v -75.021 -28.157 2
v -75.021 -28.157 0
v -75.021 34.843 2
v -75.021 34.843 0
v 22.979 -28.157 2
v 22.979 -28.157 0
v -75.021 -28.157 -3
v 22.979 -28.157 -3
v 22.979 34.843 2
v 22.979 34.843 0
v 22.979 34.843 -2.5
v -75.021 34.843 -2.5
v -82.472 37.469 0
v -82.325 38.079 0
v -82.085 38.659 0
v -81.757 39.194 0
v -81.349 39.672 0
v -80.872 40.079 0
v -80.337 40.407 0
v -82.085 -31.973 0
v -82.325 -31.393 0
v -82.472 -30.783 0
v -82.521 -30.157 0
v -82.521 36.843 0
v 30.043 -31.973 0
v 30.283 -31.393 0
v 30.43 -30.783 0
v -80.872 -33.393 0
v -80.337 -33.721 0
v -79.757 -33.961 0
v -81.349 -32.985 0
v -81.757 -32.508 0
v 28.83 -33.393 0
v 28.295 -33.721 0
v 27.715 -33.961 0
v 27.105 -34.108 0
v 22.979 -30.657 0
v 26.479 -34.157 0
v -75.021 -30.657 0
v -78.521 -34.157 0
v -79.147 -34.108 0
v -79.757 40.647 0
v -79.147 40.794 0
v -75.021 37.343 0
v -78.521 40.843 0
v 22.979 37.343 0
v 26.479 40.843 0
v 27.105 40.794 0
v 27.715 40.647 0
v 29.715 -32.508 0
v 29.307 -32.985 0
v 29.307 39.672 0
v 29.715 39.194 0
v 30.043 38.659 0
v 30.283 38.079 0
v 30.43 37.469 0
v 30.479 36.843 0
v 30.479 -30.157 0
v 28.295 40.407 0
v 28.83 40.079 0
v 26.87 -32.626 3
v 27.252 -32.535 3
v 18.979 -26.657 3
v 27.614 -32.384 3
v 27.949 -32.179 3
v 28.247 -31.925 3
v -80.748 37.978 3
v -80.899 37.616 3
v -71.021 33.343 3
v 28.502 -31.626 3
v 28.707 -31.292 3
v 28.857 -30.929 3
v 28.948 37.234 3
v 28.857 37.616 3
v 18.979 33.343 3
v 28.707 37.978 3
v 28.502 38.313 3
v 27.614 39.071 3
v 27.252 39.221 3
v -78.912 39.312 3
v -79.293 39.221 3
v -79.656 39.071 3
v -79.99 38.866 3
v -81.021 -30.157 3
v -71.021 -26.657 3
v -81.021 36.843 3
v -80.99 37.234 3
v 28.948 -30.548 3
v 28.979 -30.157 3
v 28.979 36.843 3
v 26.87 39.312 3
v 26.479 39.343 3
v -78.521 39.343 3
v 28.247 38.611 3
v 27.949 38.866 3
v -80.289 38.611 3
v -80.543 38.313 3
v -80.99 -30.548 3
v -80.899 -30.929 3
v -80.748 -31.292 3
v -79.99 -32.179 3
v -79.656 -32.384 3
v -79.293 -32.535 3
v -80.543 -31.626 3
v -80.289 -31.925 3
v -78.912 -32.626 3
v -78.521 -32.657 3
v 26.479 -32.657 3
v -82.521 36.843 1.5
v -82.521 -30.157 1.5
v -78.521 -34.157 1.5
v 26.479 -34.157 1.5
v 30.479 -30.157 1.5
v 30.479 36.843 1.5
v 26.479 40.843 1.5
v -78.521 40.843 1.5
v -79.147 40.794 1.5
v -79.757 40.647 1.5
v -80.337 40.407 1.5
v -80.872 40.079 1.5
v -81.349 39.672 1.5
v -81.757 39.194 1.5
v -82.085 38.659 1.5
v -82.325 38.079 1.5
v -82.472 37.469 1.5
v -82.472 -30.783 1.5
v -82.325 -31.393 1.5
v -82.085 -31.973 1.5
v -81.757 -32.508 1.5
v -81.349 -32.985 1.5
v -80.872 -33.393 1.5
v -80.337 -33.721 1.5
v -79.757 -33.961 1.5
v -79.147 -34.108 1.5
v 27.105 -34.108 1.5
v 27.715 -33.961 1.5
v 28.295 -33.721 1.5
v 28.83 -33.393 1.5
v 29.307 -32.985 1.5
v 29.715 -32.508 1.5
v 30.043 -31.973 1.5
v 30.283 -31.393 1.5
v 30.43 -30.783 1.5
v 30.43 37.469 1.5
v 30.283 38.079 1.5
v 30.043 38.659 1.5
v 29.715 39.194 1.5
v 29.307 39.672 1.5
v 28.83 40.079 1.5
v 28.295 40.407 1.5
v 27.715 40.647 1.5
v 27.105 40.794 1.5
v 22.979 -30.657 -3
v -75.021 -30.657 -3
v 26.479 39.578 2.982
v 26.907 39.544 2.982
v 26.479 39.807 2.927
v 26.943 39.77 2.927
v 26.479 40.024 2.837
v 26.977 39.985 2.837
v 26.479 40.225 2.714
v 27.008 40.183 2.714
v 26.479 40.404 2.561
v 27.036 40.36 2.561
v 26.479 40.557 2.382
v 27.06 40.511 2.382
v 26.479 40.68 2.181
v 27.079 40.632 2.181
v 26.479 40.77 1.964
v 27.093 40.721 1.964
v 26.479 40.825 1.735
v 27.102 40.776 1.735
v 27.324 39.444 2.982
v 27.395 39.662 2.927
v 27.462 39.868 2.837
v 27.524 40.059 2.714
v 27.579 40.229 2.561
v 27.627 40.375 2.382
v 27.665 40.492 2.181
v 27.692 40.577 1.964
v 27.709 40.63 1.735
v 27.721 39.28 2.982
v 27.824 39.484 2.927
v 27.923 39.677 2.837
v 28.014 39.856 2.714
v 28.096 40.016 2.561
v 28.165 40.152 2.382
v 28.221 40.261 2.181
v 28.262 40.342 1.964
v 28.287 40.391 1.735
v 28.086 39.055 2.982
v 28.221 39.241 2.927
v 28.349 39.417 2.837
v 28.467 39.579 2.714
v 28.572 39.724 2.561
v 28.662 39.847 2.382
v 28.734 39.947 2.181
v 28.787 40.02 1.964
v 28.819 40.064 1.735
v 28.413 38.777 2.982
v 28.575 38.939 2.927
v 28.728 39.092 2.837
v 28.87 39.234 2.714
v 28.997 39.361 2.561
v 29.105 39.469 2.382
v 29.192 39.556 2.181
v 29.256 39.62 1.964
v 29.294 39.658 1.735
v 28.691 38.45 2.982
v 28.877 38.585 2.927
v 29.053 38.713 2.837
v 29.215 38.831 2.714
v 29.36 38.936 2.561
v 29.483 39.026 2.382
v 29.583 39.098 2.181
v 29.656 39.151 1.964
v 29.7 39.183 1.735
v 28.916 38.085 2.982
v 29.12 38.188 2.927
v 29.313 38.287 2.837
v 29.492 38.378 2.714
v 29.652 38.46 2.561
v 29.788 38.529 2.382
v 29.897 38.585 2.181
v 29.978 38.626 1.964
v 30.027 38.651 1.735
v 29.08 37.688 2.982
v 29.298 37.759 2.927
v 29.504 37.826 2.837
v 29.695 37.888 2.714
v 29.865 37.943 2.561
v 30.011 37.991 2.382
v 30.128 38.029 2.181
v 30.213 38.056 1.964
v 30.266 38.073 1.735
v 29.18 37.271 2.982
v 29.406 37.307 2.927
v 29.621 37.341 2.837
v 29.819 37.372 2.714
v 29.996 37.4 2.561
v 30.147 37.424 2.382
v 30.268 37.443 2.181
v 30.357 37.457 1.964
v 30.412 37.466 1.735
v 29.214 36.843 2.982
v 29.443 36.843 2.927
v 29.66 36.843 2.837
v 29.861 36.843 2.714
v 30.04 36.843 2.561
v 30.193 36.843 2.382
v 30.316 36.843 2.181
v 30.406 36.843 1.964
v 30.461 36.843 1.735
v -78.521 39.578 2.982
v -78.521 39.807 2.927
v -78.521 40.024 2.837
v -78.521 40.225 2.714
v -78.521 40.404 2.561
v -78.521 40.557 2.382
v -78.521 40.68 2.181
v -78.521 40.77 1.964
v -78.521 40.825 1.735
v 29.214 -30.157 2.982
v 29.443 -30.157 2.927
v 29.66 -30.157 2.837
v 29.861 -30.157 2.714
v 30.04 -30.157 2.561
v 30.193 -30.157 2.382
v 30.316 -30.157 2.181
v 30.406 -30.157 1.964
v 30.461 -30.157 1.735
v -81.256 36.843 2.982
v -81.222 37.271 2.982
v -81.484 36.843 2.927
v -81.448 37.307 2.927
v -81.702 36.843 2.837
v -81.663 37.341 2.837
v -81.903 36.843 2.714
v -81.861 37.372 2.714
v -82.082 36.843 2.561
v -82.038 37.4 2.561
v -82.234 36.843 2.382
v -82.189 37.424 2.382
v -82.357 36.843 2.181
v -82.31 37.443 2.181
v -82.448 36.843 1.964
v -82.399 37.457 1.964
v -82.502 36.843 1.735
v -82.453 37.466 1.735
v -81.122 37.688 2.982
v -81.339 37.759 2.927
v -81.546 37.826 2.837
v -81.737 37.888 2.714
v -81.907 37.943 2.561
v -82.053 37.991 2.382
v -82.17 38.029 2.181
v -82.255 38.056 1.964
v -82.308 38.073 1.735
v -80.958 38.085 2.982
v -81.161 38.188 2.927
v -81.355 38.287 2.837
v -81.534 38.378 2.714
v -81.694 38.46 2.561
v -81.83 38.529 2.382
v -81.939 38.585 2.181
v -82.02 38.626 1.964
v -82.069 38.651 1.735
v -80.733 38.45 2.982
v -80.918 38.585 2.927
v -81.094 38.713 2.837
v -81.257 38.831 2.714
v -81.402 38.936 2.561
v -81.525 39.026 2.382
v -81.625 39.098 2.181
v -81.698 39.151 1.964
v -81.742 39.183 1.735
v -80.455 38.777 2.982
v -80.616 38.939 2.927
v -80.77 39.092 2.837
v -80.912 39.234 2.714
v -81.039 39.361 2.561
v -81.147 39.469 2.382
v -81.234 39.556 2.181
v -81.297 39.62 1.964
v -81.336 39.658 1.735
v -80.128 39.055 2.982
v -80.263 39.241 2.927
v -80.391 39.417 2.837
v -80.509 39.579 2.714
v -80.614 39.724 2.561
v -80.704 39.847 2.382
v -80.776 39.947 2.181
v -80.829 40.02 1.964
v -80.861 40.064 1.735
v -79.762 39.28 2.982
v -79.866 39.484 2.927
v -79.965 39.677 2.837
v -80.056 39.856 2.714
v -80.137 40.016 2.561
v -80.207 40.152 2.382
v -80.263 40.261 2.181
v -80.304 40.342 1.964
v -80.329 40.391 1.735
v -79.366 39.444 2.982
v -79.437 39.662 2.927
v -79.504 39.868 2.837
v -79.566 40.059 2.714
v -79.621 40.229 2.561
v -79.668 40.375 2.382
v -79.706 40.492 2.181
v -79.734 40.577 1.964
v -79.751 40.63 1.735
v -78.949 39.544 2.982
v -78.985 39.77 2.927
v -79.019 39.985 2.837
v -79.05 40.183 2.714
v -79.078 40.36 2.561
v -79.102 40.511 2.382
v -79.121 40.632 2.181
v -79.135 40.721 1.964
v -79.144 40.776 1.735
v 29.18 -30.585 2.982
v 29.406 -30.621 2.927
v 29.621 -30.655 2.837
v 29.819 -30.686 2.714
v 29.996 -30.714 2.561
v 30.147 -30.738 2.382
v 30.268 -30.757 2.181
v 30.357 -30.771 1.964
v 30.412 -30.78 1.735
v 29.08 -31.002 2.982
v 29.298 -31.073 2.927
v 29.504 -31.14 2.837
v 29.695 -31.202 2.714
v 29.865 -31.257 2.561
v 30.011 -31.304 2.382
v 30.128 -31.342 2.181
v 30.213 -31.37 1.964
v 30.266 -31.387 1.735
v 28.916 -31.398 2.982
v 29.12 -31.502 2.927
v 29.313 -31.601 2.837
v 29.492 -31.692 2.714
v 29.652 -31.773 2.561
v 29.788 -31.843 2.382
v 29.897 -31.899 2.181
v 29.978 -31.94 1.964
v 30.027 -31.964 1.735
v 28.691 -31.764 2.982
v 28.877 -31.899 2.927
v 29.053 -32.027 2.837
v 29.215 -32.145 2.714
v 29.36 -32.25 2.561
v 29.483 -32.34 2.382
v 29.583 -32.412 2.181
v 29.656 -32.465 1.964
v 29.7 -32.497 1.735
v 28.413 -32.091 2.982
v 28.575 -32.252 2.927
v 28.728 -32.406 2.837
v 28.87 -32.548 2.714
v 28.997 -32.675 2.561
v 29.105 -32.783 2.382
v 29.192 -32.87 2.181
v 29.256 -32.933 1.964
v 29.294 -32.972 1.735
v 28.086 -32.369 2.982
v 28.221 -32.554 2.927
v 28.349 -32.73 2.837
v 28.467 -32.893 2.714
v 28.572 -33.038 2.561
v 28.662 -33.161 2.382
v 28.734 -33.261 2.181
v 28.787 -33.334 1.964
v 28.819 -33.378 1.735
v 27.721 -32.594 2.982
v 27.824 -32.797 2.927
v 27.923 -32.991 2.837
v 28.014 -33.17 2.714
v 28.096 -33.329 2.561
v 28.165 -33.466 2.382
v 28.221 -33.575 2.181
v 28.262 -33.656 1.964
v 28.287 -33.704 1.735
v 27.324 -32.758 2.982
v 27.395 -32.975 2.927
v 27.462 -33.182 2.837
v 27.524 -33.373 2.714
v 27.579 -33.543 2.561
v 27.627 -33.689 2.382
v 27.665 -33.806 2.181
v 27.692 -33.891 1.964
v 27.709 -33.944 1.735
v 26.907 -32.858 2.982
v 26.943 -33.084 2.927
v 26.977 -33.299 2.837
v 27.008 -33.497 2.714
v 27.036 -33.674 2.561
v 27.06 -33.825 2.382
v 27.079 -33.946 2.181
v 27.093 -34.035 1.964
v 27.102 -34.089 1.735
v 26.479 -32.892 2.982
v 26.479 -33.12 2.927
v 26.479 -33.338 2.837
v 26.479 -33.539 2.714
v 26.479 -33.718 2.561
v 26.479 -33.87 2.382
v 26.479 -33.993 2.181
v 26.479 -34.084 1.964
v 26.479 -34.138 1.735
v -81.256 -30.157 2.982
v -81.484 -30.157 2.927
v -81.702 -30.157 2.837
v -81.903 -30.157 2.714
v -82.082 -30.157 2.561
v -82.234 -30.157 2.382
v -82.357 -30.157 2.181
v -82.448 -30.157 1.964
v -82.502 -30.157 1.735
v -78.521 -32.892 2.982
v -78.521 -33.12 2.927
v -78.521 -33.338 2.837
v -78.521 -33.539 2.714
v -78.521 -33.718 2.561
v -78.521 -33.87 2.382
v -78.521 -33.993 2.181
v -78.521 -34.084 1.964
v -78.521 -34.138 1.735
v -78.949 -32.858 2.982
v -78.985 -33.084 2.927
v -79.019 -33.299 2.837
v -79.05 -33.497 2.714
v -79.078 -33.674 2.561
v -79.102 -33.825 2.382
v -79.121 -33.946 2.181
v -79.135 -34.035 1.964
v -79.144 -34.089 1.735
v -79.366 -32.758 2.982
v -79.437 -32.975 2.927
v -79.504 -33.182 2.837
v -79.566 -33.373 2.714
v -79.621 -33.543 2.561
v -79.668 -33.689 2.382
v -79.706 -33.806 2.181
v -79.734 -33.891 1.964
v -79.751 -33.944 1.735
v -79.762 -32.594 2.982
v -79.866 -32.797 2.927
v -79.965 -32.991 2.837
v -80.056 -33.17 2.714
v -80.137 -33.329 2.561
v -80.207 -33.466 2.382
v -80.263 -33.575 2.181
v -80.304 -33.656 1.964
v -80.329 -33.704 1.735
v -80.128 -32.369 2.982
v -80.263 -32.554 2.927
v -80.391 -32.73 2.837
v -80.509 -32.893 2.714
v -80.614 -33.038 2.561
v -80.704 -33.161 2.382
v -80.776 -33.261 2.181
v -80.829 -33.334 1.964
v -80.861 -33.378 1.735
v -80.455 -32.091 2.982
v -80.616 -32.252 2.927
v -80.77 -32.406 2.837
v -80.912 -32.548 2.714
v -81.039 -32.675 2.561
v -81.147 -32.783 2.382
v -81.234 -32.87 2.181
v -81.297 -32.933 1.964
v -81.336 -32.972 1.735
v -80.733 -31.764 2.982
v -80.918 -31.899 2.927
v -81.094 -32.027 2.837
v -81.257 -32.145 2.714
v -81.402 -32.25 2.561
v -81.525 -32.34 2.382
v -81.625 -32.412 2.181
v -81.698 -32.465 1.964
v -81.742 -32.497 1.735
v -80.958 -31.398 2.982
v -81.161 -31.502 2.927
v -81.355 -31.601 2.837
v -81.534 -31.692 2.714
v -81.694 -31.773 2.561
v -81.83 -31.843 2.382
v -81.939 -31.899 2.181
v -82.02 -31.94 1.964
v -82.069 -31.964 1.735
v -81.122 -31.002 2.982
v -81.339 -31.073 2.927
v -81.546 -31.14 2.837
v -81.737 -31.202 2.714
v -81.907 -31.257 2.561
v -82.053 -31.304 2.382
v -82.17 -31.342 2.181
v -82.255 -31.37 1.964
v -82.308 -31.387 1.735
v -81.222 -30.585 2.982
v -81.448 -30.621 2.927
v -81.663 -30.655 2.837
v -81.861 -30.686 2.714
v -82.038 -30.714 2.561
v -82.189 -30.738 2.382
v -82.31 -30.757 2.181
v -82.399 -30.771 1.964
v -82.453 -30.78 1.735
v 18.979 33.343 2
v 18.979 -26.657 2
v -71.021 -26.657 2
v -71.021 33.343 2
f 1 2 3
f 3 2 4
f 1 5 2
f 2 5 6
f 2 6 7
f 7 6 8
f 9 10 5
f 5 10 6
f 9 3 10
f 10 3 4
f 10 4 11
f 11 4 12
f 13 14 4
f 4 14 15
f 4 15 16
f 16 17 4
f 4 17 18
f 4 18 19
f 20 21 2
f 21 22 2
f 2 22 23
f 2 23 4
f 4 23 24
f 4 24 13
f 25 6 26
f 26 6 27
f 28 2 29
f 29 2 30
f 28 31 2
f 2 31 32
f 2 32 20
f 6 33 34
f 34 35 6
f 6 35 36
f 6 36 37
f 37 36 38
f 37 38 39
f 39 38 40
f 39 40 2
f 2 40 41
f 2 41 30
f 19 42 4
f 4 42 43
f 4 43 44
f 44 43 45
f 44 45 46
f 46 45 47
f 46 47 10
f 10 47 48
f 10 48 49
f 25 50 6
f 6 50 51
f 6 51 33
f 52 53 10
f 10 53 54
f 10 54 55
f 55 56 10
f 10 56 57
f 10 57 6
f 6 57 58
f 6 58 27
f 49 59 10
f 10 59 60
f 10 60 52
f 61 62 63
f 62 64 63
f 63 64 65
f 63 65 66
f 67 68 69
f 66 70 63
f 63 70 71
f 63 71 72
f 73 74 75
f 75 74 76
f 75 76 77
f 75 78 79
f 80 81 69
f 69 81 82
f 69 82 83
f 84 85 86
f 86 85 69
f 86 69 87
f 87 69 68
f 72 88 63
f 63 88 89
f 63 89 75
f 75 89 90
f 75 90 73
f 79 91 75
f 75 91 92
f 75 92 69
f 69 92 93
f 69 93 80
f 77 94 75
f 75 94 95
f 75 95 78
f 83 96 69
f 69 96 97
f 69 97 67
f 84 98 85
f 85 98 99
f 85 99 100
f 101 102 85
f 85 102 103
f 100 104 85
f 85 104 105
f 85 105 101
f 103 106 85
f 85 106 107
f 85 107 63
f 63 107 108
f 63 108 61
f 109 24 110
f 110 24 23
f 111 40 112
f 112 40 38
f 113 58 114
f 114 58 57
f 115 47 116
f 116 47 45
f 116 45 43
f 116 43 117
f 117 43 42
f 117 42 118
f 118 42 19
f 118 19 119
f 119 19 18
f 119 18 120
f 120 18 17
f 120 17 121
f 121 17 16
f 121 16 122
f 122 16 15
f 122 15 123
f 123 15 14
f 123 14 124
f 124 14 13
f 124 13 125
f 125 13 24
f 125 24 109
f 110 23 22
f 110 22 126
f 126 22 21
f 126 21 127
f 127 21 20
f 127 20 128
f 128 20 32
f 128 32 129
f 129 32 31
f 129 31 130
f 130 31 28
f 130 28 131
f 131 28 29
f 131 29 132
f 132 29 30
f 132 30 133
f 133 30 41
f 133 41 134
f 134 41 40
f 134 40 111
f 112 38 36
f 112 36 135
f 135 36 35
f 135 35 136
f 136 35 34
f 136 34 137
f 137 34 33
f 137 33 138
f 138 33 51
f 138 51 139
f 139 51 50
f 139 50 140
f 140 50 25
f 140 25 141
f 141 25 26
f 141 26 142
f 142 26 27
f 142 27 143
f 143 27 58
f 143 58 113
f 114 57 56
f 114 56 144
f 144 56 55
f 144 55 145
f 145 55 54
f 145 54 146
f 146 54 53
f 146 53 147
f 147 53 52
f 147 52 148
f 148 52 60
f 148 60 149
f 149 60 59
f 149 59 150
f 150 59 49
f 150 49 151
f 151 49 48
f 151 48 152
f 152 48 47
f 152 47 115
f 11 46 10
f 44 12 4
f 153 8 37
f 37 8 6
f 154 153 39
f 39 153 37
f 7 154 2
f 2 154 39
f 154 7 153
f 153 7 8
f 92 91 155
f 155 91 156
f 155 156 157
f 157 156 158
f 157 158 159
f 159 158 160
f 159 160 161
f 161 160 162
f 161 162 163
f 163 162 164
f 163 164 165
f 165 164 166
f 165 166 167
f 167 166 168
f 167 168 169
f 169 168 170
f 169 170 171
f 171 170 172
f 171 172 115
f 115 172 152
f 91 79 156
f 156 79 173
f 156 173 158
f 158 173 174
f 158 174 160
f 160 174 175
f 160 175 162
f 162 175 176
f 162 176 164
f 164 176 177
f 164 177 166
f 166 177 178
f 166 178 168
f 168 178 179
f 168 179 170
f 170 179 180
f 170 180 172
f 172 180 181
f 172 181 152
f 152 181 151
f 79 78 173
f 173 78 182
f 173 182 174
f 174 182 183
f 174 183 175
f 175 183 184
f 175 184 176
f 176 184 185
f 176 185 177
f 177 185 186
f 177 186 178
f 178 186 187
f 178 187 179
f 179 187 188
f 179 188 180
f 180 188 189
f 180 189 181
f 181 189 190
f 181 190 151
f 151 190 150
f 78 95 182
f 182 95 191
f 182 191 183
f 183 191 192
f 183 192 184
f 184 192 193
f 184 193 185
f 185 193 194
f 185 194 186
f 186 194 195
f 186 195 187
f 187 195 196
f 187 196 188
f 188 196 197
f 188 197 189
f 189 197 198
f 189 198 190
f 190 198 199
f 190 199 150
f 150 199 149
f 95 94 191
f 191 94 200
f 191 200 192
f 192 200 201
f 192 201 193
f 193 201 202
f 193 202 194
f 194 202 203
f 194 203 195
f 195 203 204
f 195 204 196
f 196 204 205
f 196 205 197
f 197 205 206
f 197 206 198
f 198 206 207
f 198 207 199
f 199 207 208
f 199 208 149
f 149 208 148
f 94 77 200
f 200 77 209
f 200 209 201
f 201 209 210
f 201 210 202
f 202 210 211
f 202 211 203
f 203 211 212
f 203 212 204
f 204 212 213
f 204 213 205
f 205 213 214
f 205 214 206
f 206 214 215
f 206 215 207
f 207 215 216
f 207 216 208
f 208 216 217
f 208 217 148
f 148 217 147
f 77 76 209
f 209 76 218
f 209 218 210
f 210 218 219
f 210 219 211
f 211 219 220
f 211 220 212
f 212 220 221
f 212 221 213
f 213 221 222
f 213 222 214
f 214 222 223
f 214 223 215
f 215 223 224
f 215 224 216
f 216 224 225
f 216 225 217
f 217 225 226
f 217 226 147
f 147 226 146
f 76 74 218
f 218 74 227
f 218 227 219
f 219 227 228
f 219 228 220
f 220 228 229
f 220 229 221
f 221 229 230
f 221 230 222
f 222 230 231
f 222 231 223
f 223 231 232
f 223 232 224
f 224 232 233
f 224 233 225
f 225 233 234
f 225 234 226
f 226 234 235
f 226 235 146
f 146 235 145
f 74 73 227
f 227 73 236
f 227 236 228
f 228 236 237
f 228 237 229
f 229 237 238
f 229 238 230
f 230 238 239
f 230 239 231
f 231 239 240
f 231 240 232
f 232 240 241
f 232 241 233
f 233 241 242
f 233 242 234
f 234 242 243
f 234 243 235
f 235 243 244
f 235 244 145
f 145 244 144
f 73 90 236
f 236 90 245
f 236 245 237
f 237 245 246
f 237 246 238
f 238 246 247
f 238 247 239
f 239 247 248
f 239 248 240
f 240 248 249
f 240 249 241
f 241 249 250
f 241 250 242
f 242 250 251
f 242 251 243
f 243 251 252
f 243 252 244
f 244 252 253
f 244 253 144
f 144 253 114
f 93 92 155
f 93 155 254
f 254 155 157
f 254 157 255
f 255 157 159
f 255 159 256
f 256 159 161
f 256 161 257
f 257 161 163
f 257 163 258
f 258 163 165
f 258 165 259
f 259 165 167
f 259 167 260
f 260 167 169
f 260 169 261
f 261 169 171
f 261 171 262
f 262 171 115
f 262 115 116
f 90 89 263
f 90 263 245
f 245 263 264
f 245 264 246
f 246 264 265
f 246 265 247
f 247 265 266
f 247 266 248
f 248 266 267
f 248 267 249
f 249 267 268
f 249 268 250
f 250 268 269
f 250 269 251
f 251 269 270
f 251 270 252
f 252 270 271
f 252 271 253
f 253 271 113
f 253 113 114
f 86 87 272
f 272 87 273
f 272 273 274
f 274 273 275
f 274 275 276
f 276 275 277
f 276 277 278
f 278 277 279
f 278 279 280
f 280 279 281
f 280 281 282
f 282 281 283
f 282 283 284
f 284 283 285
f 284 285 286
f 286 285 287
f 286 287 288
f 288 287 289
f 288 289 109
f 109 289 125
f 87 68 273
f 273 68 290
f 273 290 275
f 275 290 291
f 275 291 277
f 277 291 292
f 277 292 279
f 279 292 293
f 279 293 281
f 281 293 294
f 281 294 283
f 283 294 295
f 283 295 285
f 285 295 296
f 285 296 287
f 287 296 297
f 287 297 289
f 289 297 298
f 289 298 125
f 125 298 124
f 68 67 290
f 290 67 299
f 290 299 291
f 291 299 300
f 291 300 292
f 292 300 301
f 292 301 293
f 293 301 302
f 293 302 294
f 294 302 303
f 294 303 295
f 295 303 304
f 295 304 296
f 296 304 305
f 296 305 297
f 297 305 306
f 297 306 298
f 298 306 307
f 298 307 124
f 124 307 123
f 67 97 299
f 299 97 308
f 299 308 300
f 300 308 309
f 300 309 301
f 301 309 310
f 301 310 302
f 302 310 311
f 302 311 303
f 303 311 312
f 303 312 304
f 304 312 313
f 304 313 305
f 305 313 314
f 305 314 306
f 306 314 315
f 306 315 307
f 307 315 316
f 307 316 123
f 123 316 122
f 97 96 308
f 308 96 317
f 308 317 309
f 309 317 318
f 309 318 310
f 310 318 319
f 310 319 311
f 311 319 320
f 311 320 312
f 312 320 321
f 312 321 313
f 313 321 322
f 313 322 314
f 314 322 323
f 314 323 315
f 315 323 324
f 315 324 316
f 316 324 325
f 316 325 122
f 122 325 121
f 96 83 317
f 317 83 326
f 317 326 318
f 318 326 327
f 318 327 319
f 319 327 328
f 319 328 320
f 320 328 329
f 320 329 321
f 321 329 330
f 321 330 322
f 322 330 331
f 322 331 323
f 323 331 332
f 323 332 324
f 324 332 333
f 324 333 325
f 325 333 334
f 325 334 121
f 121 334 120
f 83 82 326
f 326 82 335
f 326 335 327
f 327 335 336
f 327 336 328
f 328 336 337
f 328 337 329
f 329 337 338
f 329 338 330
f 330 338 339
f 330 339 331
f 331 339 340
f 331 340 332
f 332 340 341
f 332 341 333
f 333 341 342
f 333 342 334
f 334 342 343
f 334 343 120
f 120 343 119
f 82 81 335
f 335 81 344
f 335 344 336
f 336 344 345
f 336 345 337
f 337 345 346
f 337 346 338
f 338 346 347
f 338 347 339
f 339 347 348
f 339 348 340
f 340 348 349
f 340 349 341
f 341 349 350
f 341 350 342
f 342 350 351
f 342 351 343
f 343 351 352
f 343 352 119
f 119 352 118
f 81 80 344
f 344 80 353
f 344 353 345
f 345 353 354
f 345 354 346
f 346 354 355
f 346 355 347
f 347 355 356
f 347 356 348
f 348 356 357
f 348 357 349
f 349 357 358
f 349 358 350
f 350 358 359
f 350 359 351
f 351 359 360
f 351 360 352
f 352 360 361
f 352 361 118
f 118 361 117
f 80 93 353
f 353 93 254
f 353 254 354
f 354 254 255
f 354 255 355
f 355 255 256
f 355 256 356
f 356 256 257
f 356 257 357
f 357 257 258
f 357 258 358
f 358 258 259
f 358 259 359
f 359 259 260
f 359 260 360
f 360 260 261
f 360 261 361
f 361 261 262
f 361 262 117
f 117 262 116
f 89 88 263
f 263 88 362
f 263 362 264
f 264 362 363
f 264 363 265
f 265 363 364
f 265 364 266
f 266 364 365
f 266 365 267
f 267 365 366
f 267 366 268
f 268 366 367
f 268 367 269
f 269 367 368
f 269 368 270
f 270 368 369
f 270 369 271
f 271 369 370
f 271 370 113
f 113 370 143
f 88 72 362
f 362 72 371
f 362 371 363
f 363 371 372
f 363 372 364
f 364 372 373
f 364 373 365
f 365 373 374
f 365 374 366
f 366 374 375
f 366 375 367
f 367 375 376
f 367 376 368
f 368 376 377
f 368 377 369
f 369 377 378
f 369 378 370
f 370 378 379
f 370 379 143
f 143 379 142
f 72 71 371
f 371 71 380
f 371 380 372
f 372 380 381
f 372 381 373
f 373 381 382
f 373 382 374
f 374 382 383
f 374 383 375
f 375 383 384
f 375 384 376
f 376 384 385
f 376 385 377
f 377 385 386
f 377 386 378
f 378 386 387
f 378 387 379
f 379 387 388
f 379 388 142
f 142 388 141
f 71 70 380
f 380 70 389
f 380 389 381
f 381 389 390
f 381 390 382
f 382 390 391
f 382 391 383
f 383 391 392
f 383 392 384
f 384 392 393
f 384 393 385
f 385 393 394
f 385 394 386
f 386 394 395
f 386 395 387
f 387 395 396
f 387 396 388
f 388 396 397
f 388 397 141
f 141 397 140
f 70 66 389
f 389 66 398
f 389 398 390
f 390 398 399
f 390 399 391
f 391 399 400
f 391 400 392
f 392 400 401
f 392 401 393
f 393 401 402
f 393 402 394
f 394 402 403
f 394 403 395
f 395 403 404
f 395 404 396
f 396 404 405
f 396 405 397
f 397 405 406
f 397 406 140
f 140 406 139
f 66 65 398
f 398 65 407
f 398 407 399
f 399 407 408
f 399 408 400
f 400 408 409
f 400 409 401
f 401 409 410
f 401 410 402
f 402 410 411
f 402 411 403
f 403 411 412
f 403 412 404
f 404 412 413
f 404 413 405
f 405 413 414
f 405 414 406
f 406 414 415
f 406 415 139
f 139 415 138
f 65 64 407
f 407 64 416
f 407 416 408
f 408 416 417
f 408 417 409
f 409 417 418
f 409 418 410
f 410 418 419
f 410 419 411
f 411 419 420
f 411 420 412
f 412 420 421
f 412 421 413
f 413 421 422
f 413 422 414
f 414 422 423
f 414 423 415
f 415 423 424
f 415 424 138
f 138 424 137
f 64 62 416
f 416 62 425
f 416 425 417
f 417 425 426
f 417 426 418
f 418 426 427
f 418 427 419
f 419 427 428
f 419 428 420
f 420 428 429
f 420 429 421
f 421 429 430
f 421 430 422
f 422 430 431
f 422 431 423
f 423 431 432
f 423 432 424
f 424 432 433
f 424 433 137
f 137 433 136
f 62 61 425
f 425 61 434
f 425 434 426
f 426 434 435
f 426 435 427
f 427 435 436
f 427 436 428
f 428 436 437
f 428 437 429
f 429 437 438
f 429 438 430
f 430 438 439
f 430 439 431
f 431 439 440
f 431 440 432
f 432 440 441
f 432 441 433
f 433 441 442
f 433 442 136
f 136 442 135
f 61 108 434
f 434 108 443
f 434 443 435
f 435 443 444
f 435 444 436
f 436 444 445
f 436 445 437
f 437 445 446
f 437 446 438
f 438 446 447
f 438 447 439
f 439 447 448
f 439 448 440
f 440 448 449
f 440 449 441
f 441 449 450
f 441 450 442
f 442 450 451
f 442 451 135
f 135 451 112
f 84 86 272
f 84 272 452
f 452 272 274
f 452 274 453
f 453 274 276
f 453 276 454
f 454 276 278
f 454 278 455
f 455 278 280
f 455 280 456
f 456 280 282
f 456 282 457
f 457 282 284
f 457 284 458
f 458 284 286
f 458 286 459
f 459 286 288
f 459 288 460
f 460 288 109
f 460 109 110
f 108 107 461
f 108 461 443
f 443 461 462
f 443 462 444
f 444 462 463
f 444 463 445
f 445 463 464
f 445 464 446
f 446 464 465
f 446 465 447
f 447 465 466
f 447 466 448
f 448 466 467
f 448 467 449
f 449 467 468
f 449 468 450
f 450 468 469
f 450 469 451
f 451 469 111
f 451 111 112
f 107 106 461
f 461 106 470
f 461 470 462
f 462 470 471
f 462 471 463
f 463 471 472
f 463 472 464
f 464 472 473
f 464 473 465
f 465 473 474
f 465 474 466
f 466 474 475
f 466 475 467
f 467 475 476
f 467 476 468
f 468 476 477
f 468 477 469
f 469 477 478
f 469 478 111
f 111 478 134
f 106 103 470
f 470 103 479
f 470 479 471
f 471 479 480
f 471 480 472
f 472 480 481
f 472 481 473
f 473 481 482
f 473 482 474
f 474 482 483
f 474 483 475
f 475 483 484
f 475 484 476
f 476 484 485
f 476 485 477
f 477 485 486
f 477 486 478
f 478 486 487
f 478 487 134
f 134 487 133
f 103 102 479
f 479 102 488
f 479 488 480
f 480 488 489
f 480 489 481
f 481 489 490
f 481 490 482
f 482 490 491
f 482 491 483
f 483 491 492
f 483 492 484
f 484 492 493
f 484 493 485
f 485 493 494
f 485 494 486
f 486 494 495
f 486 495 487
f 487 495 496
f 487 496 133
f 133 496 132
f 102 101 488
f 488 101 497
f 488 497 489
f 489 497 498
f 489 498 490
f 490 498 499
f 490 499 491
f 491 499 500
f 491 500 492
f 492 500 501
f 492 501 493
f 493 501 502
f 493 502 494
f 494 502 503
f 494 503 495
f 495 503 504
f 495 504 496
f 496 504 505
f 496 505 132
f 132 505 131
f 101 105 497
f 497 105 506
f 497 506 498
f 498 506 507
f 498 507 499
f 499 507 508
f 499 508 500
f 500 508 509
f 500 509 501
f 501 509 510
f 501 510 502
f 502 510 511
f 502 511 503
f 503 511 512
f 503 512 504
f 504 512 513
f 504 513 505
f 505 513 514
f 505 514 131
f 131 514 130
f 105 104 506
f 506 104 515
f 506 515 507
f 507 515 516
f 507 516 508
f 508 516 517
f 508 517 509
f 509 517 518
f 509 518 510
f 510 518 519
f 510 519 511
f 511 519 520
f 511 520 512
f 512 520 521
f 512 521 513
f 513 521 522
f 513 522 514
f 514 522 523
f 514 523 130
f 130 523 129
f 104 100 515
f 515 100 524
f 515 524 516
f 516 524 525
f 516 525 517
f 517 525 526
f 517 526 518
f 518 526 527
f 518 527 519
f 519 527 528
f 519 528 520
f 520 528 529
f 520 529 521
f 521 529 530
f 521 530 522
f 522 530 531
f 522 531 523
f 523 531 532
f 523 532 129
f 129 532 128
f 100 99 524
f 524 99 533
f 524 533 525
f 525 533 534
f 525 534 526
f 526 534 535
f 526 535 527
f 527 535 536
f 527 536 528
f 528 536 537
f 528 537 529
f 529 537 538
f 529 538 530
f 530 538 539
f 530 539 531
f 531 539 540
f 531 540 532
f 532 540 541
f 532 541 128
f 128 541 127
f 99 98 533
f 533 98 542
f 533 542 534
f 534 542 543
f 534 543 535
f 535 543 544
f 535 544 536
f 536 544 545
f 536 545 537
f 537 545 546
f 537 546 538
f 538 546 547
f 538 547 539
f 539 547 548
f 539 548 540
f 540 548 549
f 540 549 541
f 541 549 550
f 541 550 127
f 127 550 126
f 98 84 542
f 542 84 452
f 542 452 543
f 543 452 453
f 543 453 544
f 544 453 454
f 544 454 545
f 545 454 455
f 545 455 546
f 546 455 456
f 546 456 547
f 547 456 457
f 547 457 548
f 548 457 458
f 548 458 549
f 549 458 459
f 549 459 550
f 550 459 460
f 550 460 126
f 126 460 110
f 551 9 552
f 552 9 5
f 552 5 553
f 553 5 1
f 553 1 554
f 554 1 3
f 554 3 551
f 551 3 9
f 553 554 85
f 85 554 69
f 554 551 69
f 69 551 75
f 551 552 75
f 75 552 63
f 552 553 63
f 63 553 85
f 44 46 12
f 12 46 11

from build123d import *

# Parameters (mm, degrees)
SKETCH1_W               = 113
SKETCH1_H               = 75
SKETCH1_W_2             = 98
SKETCH1_H_2             = 63
BOSS_EXTRUDE1_DEPTH     = 3
FILLET1_R               = 4
SKETCH2_W               = 98
SKETCH2_H               = 2.5
BOSS_EXTRUDE2_DEPTH     = 3
FILLET2_R               = 1.5
SKETCH3_W               = 98
SKETCH3_H               = 63
SKETCH3_W_2             = 90
SKETCH3_H_2             = 60
BOSS_EXTRUDE3_DEPTH     = 1
CUT_EXTRUDE1_DEPTH      = 114.169815067
CUT_EXTRUDE1_DEPTH_BACK = 114.169815067


with BuildPart() as part:
    # Sketch1 → Boss-Extrude1 (new body)
    with BuildSketch(Plane.XY):
        with Locations((-26.020950744, 3.343078266)):
            Rectangle(SKETCH1_W, SKETCH1_H)
        with Locations((-26.020950744, 3.343078266)):
            Rectangle(SKETCH1_W_2, SKETCH1_H_2, mode=Mode.SUBTRACT)
    extrude(amount=BOSS_EXTRUDE1_DEPTH)

    # Fillet1
    fillet1_edges = [part.edges().sort_by_distance(p)[0] for p in [
        (-82.520950744, 40.843078266, 1.5),
        (30.479049256, 40.843078266, 1.5),
        (30.479049256, -34.156921734, 1.5),
        (-82.520950744, -34.156921734, 1.5),
    ]]
    fillet(fillet1_edges, radius=FILLET1_R)

    # Sketch2 → Boss-Extrude2 (add)
    with BuildSketch(Plane(origin=(0, 0, 0), x_dir=(-1, 0, 0), z_dir=(0, 0, -1))):
        with Locations((26.020950744, 36.093078266)):
            Rectangle(SKETCH2_W, SKETCH2_H)
        with Locations((26.020950744, -29.406921734)):
            Rectangle(SKETCH2_W, SKETCH2_H)
    extrude(amount=BOSS_EXTRUDE2_DEPTH)

    # Fillet2
    fillet2_edges = [part.edges().sort_by_distance(p)[0] for p in [
        (-82.520950744, 3.343078266, 3),
        (-26.020950744, 40.843078266, 3),
        (-26.020950744, -34.156921734, 3),
        (30.479049256, 3.343078266, 3),
        (29.307476381, 39.67150539, 3),
        (29.307476381, -32.985348859, 3),
        (-81.349377868, -32.985348859, 3),
        (-81.349377868, 39.67150539, 3),
    ]]
    fillet(fillet2_edges, radius=FILLET2_R)

    # Sketch3 → Boss-Extrude3 (add)
    with BuildSketch(Plane.XY.offset(3)):
        with Locations((-26.020950744, 3.343078266)):
            Rectangle(SKETCH3_W, SKETCH3_H)
        with Locations((-26.020950744, 3.343078266)):
            Rectangle(SKETCH3_W_2, SKETCH3_H_2, mode=Mode.SUBTRACT)
    extrude(amount=-BOSS_EXTRUDE3_DEPTH)

    # Sketch4 → Cut-Extrude1 (cut, two sides: drawn at the far end of the back side and taken through both)
    with BuildSketch(Plane.ZY.offset(75.020950744).offset(-CUT_EXTRUDE1_DEPTH_BACK)):
        Polygon((0, 37.343078266), (-2.5, 34.843078266), (-3, 34.843078266), (-3, 37.343078266), align=None)
    extrude(amount=CUT_EXTRUDE1_DEPTH + CUT_EXTRUDE1_DEPTH_BACK, mode=Mode.SUBTRACT)


solid = part.part
